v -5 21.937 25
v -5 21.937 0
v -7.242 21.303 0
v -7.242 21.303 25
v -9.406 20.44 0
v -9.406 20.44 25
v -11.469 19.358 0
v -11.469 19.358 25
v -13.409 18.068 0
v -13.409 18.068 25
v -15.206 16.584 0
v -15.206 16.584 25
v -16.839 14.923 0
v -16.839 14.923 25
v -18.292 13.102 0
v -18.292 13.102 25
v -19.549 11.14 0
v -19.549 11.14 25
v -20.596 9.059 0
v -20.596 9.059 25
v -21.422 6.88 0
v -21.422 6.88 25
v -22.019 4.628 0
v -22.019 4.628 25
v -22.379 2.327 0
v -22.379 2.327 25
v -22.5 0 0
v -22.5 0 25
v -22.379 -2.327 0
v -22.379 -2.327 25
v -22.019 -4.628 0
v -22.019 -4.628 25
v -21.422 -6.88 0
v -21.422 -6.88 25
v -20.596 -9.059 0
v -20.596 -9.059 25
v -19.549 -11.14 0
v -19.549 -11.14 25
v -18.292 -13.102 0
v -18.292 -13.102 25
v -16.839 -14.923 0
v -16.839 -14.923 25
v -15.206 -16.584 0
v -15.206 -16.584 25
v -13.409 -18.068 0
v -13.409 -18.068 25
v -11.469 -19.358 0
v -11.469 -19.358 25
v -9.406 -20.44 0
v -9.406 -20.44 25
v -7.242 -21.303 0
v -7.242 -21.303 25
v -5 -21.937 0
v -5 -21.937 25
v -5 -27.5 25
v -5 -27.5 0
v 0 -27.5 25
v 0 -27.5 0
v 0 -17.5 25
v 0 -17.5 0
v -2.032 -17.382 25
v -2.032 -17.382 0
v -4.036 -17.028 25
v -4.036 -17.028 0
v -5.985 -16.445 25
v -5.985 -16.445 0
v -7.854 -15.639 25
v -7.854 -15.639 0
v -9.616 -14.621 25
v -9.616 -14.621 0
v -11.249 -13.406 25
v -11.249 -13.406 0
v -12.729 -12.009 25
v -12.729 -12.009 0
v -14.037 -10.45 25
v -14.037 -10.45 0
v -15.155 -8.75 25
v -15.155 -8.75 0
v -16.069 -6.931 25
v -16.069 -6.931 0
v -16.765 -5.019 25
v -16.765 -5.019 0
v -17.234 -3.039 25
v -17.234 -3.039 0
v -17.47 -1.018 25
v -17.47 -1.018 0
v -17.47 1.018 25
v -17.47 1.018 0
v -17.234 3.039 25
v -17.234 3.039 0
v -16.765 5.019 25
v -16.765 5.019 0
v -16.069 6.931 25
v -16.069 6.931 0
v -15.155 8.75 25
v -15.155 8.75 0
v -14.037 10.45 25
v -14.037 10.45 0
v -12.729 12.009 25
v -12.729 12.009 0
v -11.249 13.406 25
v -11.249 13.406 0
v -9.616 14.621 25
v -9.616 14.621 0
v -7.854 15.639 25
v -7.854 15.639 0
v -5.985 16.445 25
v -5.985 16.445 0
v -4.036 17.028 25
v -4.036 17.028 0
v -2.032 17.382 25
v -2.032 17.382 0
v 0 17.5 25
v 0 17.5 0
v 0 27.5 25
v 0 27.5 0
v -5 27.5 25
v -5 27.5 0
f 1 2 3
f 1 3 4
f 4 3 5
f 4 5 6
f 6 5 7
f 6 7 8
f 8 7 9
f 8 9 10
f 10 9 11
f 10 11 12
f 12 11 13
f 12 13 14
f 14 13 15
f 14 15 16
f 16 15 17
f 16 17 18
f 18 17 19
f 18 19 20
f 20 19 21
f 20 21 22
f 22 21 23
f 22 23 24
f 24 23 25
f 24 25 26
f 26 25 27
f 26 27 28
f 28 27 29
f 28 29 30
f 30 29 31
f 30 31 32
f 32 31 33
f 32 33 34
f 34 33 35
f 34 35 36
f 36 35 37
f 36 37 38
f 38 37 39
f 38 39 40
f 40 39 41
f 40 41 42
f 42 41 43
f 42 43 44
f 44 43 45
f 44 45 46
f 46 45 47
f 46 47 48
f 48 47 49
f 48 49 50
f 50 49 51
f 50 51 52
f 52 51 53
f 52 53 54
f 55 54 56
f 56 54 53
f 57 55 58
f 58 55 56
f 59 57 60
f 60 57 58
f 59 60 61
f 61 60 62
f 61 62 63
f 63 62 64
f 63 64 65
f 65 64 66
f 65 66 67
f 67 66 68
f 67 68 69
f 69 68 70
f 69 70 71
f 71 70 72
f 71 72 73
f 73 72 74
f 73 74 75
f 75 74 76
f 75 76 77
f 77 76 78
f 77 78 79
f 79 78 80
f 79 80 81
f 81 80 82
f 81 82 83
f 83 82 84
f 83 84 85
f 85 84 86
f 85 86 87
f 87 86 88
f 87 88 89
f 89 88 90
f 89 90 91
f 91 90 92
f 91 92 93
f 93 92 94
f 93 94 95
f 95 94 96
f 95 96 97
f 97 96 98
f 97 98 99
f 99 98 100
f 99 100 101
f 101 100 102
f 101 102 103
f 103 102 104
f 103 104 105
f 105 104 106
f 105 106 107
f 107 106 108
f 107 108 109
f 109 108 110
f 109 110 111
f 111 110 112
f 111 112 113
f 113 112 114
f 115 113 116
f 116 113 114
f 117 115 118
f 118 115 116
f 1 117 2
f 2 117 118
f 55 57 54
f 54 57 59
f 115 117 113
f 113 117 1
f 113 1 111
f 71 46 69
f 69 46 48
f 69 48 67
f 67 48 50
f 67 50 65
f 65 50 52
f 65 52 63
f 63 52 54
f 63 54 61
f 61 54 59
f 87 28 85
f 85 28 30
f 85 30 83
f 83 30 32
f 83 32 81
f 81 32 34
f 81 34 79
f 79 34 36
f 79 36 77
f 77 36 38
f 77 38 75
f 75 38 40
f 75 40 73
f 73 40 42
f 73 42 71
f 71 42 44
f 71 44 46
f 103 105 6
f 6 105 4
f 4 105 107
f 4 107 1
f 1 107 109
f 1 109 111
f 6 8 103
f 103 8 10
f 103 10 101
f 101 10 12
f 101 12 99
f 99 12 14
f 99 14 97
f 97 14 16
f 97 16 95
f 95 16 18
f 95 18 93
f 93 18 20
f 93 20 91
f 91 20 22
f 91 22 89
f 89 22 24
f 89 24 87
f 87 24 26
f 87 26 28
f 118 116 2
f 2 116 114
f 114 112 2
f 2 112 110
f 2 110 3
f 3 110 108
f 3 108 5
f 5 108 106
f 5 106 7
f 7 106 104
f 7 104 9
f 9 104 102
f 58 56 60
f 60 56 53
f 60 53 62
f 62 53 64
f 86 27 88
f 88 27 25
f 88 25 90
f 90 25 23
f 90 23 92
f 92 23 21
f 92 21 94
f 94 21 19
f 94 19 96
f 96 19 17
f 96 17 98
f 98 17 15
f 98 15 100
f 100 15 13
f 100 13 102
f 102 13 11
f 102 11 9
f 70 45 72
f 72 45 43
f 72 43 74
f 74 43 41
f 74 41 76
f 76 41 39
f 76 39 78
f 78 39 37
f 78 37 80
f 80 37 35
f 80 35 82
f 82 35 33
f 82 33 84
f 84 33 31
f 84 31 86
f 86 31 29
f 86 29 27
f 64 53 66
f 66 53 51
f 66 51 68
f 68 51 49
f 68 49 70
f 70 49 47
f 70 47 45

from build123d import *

# Parameters (mm, degrees)
BOSS_EXTRUDE1_DEPTH = 25


with BuildPart() as part:
    # Sketch4 → Boss-Extrude1 (new body)
    with BuildSketch(Plane.XY):
        with BuildLine():
            Line((0, 22.5), (0, 17.5))
            ThreePointArc((0, 17.5), (-17.5, 0), (0, -17.5))
            Line((0, -17.5), (0, -22.5))
            Line((0, -22.5), (0, -27.5))
            Line((0, -27.5), (-5, -27.5))
            Line((-5, -27.5), (-5, -22.5))
            Line((-5, -22.5), (-5, -21.937410968))
            ThreePointArc((-5, -21.937410968), (-22.5, 0), (-5, 21.937410968))
            Line((-5, 21.937410968), (-5, 22.5))
            Line((-5, 22.5), (-5, 27.5))
            Line((-5, 27.5), (0, 27.5))
            Line((0, 27.5), (0, 22.5))
        make_face()
    extrude(amount=BOSS_EXTRUDE1_DEPTH)


solid = part.part
